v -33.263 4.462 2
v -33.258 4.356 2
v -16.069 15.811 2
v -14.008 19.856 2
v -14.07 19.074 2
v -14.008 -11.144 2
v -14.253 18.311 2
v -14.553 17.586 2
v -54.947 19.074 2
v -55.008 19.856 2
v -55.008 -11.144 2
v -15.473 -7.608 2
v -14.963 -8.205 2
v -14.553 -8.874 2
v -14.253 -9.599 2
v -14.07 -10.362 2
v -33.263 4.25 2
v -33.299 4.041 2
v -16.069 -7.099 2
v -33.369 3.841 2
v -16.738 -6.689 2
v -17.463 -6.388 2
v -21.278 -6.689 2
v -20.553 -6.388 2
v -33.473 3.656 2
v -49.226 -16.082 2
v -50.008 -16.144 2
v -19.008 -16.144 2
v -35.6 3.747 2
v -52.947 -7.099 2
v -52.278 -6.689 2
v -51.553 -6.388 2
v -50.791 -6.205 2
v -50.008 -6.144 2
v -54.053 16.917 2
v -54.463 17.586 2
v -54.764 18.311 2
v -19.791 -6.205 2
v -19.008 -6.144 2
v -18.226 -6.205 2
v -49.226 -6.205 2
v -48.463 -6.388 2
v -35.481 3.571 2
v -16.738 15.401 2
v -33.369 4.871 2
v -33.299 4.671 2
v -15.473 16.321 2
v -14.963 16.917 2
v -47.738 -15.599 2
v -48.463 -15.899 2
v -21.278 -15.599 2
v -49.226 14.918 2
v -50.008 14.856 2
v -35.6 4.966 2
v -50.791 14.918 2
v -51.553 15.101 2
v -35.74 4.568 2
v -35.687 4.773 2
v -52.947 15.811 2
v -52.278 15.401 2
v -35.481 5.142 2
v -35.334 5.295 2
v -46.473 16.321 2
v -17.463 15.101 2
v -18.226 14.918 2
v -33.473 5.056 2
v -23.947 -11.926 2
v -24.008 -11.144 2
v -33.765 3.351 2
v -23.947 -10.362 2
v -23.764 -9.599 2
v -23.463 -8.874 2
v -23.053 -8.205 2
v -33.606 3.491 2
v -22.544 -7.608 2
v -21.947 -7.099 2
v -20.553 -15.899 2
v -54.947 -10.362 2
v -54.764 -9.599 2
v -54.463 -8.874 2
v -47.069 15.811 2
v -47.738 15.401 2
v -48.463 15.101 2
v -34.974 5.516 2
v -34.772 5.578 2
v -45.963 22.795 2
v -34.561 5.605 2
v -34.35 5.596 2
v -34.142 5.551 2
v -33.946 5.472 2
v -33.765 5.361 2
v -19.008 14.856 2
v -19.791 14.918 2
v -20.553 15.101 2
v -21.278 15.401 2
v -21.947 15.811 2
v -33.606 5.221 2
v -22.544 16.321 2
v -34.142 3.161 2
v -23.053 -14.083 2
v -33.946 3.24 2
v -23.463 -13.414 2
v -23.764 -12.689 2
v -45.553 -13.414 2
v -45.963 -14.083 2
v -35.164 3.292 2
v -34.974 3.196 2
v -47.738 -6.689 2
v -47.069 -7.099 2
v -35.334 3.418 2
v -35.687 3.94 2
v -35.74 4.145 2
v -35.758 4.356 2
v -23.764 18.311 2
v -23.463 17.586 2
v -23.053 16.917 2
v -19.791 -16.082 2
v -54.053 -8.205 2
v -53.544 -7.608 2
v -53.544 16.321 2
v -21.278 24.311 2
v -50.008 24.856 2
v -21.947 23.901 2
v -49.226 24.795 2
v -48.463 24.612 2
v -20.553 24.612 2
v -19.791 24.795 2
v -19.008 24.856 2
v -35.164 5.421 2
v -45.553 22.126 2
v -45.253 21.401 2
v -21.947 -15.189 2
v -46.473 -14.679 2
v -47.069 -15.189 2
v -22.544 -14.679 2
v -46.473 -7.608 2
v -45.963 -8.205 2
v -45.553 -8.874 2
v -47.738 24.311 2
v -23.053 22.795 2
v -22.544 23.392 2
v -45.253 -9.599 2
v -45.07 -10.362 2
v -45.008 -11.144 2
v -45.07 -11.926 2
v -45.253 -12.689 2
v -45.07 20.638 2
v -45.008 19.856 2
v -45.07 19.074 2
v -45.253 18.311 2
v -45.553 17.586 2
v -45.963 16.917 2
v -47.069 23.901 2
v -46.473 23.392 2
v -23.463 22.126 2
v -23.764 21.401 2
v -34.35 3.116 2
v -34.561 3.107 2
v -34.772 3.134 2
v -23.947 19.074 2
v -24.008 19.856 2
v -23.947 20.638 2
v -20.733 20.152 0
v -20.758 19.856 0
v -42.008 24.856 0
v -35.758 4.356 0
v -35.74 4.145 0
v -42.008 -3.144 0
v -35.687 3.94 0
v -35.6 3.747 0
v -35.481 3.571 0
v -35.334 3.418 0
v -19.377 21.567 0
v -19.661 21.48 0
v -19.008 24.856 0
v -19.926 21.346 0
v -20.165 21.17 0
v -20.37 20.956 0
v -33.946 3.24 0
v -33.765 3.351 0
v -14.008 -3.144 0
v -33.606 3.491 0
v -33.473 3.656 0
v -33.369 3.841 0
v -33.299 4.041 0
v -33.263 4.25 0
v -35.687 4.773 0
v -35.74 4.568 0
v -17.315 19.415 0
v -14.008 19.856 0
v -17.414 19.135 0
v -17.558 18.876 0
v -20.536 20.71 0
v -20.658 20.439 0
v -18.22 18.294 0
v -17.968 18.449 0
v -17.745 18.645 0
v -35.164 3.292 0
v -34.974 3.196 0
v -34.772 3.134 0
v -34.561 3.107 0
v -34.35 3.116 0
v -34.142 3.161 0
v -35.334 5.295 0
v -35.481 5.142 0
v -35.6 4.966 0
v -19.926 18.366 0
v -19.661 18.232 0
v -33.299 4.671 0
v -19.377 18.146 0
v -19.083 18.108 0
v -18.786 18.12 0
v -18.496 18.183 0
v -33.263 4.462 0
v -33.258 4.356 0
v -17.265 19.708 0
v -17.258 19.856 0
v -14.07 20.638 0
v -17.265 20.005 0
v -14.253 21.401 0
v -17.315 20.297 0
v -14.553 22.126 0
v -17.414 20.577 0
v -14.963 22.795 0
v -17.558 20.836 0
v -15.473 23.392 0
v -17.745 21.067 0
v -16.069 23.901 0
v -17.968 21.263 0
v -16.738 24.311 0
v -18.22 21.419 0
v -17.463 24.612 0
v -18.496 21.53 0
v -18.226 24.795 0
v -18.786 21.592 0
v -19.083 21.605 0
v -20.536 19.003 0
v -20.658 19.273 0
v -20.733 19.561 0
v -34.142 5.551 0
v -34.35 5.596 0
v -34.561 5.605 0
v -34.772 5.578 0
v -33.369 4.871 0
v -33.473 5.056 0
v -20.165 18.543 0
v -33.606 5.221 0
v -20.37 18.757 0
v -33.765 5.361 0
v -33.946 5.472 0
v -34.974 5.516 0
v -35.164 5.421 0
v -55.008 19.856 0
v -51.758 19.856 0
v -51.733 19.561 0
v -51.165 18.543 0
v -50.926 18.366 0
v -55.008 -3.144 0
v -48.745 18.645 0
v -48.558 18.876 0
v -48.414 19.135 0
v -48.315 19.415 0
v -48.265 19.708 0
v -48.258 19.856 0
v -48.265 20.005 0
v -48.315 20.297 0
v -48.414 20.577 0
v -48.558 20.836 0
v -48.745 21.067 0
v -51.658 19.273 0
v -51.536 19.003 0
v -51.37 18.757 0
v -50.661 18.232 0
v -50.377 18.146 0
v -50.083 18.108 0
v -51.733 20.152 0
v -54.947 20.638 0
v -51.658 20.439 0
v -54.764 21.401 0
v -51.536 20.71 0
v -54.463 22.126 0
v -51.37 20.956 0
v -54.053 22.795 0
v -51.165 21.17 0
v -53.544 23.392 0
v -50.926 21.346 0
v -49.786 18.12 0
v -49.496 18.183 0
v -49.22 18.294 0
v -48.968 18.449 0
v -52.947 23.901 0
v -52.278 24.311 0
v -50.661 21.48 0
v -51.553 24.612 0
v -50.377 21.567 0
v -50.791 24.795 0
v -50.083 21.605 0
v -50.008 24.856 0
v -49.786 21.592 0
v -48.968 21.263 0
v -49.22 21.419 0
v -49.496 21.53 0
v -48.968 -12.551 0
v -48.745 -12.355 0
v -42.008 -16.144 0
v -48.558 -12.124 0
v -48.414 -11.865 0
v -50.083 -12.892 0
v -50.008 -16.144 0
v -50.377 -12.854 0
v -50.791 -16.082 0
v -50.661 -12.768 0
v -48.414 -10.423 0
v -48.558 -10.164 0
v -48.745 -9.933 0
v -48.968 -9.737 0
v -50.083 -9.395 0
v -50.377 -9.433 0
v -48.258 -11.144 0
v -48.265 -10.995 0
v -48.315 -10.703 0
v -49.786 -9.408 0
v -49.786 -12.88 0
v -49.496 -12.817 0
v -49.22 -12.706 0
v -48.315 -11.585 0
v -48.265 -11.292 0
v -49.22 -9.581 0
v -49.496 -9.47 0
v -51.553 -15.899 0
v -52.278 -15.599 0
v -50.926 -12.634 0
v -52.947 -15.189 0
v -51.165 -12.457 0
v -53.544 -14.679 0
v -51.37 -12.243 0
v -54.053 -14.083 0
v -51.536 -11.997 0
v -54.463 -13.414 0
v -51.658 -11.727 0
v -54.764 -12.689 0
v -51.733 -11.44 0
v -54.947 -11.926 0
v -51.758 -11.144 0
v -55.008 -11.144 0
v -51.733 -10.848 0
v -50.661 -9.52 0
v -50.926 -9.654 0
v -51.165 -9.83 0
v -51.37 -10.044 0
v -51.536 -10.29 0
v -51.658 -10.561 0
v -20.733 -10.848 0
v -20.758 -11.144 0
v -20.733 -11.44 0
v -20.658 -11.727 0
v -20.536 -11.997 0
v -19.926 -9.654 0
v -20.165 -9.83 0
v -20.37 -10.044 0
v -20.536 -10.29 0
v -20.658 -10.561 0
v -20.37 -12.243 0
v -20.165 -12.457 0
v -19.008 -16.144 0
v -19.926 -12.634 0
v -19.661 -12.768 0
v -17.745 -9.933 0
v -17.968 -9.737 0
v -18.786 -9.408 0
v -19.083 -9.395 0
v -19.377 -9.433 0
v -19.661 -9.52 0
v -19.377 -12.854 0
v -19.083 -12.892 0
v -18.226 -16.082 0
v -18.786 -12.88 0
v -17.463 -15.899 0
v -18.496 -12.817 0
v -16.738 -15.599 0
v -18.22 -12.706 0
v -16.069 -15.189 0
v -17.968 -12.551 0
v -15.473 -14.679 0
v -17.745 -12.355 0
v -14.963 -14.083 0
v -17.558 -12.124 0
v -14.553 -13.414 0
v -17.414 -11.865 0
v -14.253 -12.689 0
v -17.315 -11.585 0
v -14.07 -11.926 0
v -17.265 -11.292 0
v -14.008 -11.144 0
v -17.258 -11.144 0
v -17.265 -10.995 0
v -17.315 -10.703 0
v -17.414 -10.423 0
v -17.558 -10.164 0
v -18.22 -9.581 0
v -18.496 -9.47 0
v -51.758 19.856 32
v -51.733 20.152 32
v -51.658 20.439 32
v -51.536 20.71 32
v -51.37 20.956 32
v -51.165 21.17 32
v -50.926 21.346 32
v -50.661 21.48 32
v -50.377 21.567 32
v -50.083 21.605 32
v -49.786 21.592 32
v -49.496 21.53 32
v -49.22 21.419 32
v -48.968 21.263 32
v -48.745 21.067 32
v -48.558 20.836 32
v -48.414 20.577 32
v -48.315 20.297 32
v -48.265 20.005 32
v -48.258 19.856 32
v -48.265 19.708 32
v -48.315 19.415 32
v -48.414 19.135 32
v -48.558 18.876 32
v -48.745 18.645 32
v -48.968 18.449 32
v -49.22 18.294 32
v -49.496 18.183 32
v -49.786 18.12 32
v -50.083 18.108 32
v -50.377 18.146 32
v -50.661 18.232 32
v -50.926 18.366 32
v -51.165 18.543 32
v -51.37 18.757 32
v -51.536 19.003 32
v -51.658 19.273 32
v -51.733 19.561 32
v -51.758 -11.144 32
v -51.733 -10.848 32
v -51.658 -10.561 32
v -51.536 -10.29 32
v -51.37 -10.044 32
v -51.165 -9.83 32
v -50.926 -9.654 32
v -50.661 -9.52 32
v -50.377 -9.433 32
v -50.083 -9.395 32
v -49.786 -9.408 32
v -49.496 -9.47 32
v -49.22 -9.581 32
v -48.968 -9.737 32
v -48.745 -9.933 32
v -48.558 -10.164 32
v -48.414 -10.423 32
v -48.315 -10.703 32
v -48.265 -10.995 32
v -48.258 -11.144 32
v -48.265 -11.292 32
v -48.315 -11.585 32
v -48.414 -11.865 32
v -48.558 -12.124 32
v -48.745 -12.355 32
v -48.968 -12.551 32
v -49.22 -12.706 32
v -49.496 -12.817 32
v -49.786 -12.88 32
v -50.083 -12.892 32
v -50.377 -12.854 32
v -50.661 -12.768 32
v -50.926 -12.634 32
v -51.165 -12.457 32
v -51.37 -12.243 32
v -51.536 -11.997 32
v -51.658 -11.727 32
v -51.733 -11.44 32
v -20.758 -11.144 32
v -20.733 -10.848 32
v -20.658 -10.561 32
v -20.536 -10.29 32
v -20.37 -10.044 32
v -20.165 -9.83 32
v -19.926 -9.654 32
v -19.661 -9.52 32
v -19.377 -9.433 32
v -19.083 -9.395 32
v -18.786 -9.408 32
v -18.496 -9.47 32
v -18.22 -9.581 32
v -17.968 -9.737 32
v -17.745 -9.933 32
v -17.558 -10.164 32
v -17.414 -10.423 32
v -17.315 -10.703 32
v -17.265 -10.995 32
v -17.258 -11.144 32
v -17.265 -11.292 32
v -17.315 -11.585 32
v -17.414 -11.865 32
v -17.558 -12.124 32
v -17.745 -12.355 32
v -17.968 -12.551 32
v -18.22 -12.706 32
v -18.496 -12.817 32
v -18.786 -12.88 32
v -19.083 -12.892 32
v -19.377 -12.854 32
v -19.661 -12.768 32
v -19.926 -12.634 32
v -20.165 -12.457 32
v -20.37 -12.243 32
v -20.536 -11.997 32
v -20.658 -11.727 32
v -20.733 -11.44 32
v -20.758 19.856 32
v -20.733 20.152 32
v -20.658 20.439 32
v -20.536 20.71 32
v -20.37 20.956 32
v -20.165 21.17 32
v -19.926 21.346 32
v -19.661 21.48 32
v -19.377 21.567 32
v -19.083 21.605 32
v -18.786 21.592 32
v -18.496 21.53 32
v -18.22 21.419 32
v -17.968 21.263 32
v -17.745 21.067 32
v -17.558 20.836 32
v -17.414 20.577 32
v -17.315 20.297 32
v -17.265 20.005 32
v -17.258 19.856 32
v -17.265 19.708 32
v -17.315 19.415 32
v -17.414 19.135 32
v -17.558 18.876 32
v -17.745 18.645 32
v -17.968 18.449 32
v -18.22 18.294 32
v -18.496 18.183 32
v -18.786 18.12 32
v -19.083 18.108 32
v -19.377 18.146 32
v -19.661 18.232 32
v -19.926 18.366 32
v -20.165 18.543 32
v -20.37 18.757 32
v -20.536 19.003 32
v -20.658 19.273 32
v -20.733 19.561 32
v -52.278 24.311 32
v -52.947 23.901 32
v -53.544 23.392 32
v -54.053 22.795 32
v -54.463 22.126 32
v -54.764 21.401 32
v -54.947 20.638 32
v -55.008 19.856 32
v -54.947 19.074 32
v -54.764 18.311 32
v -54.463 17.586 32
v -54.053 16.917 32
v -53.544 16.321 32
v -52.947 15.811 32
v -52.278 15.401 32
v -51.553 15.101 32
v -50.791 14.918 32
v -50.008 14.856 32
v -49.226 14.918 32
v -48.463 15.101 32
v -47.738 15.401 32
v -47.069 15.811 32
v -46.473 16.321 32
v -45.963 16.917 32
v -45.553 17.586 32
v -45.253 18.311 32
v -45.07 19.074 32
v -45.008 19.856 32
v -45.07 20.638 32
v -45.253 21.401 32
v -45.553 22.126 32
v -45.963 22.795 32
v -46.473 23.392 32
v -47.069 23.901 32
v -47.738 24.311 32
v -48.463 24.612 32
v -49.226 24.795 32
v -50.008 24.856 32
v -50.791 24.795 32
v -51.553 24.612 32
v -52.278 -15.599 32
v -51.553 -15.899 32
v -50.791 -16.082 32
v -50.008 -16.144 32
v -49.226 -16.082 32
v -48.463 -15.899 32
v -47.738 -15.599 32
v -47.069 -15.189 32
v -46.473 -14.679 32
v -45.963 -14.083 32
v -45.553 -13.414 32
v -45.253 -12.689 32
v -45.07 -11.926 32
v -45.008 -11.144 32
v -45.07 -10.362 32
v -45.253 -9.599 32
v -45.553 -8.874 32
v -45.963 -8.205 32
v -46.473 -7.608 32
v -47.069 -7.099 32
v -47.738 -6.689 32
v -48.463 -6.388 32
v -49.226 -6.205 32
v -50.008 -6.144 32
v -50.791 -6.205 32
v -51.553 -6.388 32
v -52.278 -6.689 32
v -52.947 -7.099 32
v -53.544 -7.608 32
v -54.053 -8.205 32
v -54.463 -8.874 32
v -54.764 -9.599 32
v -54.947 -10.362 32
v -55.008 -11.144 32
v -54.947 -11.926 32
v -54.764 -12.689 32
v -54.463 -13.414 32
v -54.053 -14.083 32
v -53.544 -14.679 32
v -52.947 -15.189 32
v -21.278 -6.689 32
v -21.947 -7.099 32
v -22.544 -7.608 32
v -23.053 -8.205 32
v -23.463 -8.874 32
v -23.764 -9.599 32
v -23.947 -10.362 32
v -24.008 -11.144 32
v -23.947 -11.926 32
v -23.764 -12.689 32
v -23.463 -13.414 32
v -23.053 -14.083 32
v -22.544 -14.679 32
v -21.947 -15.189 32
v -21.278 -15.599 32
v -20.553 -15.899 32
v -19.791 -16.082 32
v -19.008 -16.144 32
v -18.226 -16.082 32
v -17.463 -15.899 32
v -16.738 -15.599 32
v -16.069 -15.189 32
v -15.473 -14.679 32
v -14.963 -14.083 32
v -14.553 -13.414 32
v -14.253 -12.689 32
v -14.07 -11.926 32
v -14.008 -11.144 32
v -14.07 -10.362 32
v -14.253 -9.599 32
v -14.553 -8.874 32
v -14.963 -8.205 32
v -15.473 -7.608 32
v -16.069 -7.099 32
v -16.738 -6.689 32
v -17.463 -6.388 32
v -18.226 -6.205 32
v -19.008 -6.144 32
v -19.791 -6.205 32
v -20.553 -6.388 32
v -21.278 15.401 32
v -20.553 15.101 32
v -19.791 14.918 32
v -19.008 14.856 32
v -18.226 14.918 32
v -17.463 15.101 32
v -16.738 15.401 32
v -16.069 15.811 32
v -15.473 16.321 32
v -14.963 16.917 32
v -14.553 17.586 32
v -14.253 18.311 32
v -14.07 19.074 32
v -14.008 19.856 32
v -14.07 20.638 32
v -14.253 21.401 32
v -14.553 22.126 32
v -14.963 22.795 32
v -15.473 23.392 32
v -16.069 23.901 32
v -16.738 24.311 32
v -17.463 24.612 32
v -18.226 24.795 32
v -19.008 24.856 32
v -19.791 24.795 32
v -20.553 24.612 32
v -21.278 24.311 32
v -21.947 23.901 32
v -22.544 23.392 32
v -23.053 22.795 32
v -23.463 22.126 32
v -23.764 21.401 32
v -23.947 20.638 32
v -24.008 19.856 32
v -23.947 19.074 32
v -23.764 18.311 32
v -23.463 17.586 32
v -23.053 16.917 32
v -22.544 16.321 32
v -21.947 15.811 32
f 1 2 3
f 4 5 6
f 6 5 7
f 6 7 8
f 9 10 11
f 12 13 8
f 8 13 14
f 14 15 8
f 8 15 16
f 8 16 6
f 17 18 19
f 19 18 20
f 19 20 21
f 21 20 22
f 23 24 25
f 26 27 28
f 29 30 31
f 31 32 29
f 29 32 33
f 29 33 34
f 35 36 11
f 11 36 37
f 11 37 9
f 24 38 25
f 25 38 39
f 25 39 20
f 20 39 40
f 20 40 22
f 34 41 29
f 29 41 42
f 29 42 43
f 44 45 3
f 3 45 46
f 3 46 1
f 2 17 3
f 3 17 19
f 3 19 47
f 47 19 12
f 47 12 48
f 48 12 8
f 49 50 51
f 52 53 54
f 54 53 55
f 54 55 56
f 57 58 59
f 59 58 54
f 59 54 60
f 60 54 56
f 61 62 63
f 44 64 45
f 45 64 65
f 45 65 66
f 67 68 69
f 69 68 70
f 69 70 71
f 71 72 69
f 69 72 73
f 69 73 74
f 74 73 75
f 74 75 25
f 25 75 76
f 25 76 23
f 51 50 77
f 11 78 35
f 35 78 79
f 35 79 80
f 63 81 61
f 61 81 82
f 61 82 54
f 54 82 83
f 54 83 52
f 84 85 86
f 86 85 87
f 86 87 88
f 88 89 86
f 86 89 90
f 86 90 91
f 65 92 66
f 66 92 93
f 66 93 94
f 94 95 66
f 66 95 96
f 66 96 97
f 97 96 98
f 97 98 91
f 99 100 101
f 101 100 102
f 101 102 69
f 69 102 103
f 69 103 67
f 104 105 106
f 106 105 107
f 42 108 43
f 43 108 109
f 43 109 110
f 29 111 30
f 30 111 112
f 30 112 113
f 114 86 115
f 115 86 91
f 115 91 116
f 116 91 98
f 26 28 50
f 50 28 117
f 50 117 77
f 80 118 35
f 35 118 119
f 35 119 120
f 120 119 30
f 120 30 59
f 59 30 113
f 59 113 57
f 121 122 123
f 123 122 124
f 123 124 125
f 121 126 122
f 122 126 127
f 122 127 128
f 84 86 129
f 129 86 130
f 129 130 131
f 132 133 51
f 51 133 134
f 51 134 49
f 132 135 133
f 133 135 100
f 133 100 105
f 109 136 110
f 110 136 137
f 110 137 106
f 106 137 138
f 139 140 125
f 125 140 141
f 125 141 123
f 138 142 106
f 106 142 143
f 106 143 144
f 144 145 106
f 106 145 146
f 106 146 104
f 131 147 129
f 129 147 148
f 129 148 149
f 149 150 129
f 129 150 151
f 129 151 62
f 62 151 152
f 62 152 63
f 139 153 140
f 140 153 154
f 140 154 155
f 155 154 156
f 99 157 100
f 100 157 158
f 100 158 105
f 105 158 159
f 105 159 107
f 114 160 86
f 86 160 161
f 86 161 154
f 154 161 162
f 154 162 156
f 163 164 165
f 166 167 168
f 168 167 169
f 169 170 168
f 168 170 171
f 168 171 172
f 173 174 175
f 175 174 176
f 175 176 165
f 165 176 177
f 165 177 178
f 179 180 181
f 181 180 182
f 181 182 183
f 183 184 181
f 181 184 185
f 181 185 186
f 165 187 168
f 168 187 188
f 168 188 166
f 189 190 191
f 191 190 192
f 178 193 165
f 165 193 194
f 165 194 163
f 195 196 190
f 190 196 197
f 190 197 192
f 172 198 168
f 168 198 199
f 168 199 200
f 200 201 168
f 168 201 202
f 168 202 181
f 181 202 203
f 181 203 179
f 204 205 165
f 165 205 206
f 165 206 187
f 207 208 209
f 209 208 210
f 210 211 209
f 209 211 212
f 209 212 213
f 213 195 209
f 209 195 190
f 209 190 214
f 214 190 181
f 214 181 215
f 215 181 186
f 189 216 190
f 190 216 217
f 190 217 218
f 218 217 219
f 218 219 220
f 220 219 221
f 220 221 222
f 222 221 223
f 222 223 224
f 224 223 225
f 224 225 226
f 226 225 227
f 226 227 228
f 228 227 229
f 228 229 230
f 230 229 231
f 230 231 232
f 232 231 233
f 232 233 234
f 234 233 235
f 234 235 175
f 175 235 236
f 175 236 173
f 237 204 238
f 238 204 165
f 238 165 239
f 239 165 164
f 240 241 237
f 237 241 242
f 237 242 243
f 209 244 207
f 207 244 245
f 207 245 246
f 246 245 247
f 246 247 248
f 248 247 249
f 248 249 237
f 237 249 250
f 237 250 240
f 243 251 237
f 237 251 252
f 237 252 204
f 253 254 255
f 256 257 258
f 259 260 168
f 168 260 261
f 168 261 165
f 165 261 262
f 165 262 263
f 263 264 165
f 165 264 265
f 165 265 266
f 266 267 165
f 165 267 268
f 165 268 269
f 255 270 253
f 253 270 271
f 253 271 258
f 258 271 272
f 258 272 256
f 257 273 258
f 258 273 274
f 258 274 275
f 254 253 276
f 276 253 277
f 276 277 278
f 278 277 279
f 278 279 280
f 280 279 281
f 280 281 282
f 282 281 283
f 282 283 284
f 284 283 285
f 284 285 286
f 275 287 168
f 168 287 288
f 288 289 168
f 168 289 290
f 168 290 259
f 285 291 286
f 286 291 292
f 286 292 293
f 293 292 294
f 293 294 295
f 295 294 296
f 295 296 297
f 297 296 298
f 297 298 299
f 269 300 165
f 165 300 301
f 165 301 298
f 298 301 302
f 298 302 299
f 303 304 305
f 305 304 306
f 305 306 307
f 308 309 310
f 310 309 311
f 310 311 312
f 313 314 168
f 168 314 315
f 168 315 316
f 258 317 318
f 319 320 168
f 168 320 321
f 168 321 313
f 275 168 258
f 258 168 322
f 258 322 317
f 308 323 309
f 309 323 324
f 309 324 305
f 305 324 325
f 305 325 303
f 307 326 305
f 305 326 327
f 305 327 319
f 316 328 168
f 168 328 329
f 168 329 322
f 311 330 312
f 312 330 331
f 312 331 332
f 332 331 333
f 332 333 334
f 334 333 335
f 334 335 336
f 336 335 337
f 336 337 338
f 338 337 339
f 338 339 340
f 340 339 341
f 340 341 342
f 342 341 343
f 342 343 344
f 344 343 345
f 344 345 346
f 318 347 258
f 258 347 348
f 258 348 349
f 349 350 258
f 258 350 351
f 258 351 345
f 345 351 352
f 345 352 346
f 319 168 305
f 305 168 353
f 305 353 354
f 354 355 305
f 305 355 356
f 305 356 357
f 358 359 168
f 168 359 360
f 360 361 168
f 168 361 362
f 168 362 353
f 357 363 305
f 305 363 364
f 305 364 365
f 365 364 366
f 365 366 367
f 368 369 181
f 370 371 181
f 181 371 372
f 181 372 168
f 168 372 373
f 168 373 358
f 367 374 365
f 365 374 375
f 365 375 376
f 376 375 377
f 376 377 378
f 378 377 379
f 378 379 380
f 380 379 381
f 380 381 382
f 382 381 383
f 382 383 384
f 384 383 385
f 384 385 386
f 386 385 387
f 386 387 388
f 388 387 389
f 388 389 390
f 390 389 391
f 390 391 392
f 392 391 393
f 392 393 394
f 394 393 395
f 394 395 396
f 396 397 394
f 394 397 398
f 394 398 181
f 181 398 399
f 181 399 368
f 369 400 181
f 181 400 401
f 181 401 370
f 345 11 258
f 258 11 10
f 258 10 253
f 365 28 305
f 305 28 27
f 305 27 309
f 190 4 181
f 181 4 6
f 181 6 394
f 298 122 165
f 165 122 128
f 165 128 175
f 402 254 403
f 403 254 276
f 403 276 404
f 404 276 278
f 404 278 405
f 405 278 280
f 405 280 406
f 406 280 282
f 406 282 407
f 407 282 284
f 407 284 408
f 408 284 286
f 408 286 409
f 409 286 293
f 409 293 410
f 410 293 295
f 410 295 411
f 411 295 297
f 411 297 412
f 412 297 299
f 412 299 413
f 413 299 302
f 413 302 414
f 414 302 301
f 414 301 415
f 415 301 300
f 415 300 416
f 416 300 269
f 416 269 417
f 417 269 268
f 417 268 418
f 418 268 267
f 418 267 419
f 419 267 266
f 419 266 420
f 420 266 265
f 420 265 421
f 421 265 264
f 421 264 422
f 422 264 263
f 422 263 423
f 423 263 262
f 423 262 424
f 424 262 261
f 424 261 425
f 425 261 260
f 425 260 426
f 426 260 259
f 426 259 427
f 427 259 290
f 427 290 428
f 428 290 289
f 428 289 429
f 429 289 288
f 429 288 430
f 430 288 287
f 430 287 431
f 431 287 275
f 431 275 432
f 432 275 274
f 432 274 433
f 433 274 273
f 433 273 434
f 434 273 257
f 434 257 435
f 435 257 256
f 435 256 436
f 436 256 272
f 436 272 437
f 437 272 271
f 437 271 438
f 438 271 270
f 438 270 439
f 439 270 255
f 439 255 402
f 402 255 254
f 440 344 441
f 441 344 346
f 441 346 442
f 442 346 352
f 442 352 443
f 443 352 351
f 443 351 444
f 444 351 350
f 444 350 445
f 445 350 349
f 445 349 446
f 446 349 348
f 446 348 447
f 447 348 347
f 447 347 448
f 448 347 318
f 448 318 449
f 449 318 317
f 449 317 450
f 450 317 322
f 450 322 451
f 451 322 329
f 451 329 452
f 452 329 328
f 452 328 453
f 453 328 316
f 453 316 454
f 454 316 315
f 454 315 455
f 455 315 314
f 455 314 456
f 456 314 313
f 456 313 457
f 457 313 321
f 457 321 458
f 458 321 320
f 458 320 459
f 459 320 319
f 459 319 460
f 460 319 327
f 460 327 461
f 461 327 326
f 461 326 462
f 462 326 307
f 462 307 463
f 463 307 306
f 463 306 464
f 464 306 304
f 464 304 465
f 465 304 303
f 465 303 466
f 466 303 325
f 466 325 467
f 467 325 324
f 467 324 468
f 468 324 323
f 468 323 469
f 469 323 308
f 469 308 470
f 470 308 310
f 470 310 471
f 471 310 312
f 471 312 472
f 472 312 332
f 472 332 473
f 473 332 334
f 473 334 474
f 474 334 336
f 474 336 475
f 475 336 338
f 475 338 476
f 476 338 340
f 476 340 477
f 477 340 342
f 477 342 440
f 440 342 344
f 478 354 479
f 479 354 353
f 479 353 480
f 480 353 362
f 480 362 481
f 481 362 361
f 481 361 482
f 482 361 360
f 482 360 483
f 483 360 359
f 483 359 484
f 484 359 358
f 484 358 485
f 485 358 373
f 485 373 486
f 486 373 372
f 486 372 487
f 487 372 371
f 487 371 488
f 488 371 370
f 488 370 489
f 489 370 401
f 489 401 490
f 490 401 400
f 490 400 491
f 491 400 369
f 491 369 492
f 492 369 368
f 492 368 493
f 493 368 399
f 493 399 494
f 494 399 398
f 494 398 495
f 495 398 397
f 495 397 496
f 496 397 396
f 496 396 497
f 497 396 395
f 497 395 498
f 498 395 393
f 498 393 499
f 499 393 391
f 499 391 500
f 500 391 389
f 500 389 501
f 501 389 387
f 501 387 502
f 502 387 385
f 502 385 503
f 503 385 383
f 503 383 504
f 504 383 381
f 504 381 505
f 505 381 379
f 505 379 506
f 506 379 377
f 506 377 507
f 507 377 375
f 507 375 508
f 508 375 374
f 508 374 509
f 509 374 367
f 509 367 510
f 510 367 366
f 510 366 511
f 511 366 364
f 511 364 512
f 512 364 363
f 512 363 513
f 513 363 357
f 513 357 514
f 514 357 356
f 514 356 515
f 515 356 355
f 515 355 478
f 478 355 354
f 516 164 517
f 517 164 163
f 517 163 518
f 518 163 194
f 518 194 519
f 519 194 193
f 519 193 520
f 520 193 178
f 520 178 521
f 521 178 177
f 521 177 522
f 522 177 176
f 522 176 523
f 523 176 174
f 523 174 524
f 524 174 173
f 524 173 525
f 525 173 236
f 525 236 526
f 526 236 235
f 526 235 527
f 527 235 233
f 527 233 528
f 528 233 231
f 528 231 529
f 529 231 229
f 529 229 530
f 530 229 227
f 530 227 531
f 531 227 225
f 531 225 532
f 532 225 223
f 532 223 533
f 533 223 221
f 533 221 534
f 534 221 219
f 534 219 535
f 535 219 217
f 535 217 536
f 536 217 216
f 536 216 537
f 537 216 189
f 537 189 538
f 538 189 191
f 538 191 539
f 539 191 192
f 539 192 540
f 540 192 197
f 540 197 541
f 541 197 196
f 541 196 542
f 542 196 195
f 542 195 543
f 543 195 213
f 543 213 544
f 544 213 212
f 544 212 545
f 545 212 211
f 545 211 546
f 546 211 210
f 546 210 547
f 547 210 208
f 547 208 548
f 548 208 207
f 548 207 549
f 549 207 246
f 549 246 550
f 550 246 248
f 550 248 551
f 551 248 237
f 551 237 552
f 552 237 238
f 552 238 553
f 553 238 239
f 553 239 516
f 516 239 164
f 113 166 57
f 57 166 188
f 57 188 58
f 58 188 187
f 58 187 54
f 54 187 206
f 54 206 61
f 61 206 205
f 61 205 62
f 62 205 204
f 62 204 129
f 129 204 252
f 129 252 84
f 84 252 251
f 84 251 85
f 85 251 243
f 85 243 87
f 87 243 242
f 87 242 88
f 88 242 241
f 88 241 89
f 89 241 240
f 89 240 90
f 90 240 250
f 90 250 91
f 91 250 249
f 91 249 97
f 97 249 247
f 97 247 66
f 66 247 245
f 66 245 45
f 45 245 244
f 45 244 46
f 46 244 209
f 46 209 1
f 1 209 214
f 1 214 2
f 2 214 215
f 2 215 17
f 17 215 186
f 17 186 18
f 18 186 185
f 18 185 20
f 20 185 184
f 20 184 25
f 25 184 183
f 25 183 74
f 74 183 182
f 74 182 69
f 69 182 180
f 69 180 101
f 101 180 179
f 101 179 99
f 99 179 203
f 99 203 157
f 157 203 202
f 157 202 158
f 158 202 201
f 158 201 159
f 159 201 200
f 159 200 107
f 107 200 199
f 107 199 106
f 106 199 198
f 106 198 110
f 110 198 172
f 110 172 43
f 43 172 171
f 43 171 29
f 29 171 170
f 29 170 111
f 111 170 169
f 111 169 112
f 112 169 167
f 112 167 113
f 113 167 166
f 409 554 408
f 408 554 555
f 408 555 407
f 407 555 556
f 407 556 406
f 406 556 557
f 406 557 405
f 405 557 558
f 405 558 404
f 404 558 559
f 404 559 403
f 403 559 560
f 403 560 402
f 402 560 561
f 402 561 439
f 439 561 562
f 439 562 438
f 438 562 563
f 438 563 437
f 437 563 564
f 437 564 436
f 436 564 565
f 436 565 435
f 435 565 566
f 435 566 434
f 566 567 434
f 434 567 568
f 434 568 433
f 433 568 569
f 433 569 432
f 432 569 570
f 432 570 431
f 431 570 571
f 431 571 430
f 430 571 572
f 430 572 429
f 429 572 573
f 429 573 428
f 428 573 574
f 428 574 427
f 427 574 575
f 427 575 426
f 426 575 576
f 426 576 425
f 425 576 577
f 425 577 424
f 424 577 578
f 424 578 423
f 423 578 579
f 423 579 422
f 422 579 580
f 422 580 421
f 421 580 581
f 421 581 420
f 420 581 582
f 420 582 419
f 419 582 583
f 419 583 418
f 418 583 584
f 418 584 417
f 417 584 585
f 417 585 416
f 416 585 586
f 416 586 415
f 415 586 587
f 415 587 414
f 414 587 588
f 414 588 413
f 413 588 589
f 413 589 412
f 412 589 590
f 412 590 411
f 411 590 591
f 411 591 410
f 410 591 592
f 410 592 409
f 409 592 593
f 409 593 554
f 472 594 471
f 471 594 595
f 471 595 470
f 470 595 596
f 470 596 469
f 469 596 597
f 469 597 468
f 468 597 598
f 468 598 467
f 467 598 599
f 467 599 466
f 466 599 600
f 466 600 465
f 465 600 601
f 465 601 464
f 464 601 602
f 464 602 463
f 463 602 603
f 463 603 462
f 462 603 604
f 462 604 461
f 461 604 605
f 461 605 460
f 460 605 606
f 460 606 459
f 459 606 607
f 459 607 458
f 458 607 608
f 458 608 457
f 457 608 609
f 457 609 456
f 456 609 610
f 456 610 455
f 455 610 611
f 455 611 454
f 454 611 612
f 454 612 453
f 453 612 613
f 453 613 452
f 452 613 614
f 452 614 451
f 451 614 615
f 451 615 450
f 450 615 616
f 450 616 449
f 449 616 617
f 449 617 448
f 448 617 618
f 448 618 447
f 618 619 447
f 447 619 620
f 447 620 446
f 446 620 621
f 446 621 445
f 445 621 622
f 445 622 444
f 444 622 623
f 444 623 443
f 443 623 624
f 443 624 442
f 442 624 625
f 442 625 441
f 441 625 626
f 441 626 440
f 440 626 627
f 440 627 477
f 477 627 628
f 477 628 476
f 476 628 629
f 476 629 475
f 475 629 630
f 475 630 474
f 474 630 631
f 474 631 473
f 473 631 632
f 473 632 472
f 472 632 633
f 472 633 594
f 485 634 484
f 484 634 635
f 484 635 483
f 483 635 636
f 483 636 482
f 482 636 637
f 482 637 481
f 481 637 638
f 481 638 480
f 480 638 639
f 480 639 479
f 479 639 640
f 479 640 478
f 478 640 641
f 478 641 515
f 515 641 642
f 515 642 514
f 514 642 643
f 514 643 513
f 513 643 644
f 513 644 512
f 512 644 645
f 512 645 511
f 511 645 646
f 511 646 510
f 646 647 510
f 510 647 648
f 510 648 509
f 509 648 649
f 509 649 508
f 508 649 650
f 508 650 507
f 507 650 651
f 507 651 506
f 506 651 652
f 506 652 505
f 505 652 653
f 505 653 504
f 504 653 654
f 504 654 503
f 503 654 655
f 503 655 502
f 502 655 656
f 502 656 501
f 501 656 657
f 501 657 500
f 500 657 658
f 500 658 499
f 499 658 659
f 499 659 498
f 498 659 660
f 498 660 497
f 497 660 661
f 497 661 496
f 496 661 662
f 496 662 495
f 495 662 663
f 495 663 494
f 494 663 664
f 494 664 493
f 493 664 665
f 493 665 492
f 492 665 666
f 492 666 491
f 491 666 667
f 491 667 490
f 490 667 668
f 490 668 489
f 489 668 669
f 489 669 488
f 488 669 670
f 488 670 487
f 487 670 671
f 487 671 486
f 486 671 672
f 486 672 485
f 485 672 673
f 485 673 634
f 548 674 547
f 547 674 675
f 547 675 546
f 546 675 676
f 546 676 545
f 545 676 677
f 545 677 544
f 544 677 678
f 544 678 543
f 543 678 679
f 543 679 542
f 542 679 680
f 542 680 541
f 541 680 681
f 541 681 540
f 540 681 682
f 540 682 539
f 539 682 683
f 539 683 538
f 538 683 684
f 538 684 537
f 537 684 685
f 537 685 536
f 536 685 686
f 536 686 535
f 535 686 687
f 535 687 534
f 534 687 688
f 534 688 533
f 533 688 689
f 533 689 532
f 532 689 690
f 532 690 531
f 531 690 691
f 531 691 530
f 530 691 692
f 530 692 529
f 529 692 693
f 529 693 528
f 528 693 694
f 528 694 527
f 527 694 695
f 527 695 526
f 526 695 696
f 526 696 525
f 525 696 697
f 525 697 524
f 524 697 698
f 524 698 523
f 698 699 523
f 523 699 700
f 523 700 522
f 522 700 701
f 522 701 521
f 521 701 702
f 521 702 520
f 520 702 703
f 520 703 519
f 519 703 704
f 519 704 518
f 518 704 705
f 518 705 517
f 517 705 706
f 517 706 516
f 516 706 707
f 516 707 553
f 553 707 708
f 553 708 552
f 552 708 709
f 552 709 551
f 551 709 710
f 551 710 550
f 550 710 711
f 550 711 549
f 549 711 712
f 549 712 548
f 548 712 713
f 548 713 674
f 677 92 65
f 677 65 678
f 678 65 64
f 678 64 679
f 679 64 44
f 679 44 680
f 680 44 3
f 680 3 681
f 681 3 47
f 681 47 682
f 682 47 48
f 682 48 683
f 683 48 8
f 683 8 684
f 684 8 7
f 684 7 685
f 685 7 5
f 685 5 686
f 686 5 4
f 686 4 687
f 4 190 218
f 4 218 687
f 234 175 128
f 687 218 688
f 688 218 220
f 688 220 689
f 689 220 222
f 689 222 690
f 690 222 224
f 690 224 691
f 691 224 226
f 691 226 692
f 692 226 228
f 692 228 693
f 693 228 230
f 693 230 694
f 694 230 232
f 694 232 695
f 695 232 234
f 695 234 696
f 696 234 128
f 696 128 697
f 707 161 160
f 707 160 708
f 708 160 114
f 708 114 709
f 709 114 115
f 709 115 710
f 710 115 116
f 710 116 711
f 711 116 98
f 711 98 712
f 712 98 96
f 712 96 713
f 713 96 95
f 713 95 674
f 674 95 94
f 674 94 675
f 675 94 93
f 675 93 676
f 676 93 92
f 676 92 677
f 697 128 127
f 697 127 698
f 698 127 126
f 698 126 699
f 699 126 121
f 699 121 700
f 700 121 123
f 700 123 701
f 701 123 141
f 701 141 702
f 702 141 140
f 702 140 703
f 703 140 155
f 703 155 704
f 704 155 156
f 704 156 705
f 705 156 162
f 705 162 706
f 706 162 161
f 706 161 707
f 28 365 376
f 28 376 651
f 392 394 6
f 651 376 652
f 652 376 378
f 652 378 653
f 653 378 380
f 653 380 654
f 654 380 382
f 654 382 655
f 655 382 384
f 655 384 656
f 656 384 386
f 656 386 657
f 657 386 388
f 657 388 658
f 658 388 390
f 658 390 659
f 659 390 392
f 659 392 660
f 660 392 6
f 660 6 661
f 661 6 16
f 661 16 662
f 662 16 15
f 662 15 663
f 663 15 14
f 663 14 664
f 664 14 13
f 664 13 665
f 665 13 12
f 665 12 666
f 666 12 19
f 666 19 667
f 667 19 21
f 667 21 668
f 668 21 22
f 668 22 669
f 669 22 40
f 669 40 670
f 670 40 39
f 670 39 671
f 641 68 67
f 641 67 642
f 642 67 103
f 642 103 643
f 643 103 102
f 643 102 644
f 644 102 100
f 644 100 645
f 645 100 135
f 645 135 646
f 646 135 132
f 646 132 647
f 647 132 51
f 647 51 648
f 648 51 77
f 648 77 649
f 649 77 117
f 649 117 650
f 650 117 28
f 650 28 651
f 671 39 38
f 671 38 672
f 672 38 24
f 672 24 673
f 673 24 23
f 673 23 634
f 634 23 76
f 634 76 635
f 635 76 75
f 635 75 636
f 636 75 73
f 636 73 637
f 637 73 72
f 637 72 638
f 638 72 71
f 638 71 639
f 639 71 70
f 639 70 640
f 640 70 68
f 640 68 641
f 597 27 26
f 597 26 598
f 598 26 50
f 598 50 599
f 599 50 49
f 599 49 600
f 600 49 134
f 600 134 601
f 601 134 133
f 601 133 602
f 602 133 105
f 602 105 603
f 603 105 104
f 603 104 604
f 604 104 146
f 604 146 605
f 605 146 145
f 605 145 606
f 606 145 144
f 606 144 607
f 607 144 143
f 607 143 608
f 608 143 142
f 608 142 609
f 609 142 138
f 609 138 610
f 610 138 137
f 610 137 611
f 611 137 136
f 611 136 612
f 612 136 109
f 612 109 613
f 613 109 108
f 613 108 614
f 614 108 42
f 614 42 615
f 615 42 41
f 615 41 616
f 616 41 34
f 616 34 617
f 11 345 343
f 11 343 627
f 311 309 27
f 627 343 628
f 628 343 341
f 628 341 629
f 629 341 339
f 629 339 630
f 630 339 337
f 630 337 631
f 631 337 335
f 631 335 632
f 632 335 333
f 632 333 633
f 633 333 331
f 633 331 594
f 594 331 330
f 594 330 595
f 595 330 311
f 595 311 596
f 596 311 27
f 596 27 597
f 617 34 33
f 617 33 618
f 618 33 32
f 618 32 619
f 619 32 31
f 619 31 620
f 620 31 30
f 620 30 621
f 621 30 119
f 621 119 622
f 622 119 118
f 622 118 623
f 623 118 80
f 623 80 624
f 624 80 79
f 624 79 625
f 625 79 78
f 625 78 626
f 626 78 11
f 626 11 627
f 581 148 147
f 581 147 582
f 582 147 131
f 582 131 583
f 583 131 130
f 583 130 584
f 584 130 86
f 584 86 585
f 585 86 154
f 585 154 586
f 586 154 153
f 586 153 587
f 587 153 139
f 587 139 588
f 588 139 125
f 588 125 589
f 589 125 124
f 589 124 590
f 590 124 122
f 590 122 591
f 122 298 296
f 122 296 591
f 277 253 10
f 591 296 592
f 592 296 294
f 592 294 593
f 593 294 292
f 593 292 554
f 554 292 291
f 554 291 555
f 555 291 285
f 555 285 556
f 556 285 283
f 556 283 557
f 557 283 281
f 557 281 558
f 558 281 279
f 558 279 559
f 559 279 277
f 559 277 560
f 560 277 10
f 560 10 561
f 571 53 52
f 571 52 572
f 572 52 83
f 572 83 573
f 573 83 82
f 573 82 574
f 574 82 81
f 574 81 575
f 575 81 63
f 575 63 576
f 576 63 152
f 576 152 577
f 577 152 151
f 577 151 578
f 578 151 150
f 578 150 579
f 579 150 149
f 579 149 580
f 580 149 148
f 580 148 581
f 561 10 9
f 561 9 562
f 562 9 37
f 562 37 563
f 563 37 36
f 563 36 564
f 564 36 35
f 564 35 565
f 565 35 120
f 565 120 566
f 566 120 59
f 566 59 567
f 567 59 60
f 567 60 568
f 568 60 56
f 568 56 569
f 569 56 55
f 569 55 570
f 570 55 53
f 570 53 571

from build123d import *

# Parameters (mm, degrees)
SKETCH1_W           = 41
SKETCH1_H           = 41
SKETCH1_R           = 1.75
SKETCH1_R_2         = 1.25
BOSS_EXTRUDE1_DEPTH = 2
SKETCH2_W           = 10
SKETCH2_H           = 10
SKETCH2_R           = 1.75
BOSS_EXTRUDE2_DEPTH = 30
FILLET1_R           = 5


with BuildPart() as part:
    # Sketch1 → Boss-Extrude1 (new body)
    with BuildSketch(Plane.XY):
        with Locations((-34.508333333, 4.35625)):
            Rectangle(SKETCH1_W, SKETCH1_H)
        with Locations((-50.008333333, 19.85625)):
            Circle(SKETCH1_R, mode=Mode.SUBTRACT)
        with Locations((-50.008333333, -11.14375)):
            Circle(SKETCH1_R, mode=Mode.SUBTRACT)
        with Locations((-19.008333333, -11.14375)):
            Circle(SKETCH1_R, mode=Mode.SUBTRACT)
        with Locations((-19.008333333, 19.85625)):
            Circle(SKETCH1_R, mode=Mode.SUBTRACT)
        with Locations((-34.508333333, 4.35625)):
            Circle(SKETCH1_R_2, mode=Mode.SUBTRACT)
    extrude(amount=BOSS_EXTRUDE1_DEPTH)

    # Sketch2 → Boss-Extrude2 (add)
    # profile 1 of 4: a face of its own
    with BuildSketch(Plane.XY.offset(2)):
        with Locations((-50.008333333, 19.85625)):
            Rectangle(SKETCH2_W, SKETCH2_H)
        with Locations((-50.008333333, 19.85625)):
            Circle(SKETCH2_R, mode=Mode.SUBTRACT)
    # profile 2 of 4: a face of its own
    with BuildSketch(Plane.XY.offset(2)):
        with Locations((-50.008333333, -11.14375)):
            Rectangle(SKETCH2_W, SKETCH2_H)
        with Locations((-50.008333333, -11.14375)):
            Circle(SKETCH2_R, mode=Mode.SUBTRACT)
    # profile 3 of 4: a face of its own
    with BuildSketch(Plane.XY.offset(2)):
        with Locations((-19.008333333, -11.14375)):
            Rectangle(SKETCH2_W, SKETCH2_H)
        with Locations((-19.008333333, -11.14375)):
            Circle(SKETCH2_R, mode=Mode.SUBTRACT)
    # profile 4 of 4: a face of its own
    with BuildSketch(Plane.XY.offset(2)):
        with Locations((-19.008333333, 19.85625)):
            Rectangle(SKETCH2_W, SKETCH2_H)
        with Locations((-19.008333333, 19.85625)):
            Circle(SKETCH2_R, mode=Mode.SUBTRACT)
    extrude(amount=BOSS_EXTRUDE2_DEPTH)

    # Fillet1
    fillet1_edges = [part.edges().sort_by_distance(p)[0] for p in [
        (-24.008333333, 24.85625, 17),
        (-24.008333333, -6.14375, 17),
        (-55.008333333, -6.14375, 17),
        (-55.008333333, 14.85625, 17),
        (-45.008333333, 24.85625, 17),
        (-45.008333333, -6.14375, 17),
        (-45.008333333, -16.14375, 17),
        (-24.008333333, -16.14375, 17),
        (-14.008333333, -6.14375, 17),
        (-14.008333333, 14.85625, 17),
        (-24.008333333, 14.85625, 17),
        (-45.008333333, 14.85625, 17),
        (-14.008333333, -16.14375, 16),
        (-14.008333333, 24.85625, 16),
        (-55.008333333, -16.14375, 16),
        (-55.008333333, 24.85625, 16),
    ]]
    fillet(fillet1_edges, radius=FILLET1_R - 0.0001)  # a hair under: the kernel refuses the full size


solid = part.part
